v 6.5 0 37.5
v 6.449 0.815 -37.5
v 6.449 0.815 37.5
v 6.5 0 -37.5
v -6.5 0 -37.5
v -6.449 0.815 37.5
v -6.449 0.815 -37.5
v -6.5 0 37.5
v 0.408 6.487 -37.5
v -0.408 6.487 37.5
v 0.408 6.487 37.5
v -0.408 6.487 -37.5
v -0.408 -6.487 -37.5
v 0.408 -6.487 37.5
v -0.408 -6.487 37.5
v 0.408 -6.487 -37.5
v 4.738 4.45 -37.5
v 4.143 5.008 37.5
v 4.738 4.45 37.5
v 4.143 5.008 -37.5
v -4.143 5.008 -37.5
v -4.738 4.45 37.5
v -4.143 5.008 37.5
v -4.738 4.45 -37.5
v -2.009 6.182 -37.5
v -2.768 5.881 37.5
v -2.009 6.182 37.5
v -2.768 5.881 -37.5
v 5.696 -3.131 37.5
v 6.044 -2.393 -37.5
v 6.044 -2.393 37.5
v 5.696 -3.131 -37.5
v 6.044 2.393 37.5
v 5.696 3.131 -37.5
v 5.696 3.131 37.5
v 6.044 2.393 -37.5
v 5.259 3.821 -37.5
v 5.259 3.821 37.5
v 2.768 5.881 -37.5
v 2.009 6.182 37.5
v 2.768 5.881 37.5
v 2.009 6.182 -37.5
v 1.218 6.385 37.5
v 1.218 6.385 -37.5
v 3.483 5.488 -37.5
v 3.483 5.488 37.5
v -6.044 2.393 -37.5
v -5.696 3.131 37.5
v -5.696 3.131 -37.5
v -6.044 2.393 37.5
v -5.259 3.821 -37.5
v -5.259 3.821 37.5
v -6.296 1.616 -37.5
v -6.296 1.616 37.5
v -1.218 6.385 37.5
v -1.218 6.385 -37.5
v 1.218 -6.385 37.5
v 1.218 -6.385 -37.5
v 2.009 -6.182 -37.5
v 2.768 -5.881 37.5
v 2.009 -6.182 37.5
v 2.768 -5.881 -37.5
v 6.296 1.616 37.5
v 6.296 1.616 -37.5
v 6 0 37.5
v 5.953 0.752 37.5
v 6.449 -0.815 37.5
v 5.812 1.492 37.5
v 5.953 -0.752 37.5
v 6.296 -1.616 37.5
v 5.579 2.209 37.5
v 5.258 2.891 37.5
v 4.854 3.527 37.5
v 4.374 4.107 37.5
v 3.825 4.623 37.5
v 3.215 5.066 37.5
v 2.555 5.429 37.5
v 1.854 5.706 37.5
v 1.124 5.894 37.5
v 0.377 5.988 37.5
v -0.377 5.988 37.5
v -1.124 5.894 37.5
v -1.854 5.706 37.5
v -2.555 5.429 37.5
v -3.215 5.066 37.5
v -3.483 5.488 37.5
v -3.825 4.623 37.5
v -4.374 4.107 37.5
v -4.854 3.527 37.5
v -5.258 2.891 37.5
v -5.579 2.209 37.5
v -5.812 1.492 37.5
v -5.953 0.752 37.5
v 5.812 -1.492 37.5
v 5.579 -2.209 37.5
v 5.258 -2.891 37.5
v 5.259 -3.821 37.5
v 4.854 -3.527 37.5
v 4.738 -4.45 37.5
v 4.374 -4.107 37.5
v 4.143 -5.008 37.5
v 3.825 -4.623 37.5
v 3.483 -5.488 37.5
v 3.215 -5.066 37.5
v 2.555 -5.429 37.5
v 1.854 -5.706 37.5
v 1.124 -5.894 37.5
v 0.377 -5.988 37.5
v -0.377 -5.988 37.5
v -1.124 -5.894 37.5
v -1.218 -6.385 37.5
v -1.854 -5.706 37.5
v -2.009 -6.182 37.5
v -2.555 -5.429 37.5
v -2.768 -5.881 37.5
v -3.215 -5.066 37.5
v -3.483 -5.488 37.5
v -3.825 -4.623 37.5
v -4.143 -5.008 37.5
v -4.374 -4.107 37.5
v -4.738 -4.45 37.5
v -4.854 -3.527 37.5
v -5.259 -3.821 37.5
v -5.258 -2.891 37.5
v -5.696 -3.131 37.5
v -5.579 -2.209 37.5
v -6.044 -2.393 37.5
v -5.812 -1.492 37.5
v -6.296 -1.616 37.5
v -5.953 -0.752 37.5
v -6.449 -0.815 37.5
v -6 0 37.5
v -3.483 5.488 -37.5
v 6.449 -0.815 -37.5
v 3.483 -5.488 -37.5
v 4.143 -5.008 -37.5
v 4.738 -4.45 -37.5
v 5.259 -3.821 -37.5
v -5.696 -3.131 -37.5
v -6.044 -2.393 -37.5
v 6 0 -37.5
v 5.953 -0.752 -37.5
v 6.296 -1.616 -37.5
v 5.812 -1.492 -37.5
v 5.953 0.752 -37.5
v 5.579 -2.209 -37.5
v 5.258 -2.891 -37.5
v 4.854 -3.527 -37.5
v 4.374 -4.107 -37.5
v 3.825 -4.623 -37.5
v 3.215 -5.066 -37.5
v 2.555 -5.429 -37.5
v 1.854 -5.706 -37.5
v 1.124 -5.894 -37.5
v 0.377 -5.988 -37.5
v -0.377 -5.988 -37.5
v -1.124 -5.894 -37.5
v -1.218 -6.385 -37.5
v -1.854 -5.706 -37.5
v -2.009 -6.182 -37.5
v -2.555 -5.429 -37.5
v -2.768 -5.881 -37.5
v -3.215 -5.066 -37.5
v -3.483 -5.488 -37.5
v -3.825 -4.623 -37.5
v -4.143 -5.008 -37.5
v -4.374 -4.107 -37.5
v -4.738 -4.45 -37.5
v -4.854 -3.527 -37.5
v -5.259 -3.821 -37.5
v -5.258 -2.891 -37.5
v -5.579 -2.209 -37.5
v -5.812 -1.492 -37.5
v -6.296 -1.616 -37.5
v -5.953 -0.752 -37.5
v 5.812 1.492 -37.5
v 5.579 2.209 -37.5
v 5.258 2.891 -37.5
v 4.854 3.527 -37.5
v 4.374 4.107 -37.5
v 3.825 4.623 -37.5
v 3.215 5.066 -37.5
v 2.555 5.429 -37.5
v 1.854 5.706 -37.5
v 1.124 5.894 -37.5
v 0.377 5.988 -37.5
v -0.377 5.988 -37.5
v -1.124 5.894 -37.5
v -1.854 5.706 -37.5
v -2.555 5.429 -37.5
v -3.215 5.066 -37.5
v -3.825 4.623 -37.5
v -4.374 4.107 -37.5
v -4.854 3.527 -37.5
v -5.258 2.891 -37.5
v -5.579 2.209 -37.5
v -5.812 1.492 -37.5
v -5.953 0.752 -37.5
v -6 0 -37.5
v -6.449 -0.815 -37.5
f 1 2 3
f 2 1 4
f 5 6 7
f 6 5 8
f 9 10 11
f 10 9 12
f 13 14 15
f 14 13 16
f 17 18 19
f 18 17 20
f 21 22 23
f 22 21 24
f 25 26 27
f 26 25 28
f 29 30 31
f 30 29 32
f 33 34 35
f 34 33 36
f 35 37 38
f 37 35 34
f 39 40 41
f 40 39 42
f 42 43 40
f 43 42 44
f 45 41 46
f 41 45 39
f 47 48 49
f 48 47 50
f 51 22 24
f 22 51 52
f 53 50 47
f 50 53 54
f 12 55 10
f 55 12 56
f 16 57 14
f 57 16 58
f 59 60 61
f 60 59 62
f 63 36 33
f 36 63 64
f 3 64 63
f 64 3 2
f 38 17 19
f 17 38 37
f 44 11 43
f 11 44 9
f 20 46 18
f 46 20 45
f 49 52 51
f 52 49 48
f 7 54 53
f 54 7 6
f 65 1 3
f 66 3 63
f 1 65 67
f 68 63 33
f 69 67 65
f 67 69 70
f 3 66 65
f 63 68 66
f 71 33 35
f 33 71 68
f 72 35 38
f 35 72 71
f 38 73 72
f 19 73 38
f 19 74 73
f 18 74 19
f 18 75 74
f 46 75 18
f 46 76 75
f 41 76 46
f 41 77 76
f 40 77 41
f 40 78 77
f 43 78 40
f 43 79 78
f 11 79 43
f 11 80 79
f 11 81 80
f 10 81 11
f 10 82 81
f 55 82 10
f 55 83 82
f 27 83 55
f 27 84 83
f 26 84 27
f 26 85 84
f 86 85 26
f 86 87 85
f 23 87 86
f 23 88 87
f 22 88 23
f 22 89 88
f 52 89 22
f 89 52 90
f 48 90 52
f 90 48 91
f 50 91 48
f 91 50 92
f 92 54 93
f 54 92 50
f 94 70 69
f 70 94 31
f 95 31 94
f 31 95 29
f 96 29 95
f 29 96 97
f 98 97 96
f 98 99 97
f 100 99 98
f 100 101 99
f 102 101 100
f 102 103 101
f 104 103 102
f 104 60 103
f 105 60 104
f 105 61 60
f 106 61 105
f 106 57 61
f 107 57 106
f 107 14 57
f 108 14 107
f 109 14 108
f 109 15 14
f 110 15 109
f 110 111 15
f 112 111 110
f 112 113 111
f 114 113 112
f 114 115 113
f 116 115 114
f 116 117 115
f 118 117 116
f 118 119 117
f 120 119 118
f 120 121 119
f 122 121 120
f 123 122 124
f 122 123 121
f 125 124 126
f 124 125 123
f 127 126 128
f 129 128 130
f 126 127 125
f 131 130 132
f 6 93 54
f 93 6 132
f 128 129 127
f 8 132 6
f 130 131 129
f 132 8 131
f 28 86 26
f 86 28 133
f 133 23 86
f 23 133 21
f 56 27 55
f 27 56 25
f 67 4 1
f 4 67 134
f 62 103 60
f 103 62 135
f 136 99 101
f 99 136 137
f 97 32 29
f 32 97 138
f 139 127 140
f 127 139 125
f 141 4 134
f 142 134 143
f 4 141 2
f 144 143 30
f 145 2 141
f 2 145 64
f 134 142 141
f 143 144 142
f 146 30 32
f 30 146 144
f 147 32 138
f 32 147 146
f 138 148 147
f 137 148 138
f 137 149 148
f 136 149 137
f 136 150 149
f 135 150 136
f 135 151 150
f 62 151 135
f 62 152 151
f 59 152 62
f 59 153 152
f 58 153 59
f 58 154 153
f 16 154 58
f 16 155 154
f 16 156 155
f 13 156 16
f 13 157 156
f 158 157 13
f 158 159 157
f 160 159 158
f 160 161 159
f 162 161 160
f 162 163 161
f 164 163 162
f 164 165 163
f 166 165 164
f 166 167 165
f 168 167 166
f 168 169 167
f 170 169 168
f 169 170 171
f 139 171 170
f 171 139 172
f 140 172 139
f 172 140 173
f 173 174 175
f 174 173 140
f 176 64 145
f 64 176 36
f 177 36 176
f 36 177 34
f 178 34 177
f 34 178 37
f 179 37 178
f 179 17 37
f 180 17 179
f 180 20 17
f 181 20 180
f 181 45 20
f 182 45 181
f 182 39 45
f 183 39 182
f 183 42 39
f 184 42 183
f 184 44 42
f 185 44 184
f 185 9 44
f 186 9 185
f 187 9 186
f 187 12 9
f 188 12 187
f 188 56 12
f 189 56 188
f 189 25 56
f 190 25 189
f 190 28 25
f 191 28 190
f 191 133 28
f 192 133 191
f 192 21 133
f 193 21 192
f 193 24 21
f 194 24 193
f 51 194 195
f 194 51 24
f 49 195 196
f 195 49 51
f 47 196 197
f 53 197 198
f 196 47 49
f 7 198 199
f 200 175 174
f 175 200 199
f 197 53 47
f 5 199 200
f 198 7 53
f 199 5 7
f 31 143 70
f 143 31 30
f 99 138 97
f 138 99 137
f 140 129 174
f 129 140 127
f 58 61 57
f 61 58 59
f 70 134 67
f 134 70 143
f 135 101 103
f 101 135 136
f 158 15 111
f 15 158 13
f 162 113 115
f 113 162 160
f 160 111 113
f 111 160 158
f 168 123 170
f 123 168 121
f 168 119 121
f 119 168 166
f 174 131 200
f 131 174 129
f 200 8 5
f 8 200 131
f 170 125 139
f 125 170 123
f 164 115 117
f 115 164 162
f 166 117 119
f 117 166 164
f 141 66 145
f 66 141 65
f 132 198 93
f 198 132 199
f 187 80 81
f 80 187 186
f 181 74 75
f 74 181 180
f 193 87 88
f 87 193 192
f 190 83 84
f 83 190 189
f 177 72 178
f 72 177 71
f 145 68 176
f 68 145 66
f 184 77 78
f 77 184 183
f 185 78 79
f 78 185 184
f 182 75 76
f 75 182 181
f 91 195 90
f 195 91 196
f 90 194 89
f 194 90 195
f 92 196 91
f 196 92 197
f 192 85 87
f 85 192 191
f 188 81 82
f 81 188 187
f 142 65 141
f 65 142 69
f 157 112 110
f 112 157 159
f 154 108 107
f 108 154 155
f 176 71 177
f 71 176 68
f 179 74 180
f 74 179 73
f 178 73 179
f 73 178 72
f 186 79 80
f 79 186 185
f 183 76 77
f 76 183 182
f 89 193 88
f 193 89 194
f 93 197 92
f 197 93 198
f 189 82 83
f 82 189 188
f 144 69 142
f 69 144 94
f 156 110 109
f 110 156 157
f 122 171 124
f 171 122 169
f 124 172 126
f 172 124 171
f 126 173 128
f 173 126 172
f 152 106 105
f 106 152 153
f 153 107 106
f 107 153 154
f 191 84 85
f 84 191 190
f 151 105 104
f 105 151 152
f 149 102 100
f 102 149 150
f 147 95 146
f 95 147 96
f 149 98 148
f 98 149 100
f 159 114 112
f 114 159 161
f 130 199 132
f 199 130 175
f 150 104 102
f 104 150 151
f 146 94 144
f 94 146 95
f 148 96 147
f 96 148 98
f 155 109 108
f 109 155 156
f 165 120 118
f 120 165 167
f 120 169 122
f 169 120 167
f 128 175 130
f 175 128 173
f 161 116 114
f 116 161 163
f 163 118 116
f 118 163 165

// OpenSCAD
$fn = 50;


difference() {
	union() {
		translate(v = [0, 0, -37.5000000000]) {
			cylinder(h = 75, r = 6.5000000000);
		}
	}
	union() {
		translate(v = [0, 0, -100.0000000000]) {
			cylinder(h = 200, r = 6);
		}
	}
}
